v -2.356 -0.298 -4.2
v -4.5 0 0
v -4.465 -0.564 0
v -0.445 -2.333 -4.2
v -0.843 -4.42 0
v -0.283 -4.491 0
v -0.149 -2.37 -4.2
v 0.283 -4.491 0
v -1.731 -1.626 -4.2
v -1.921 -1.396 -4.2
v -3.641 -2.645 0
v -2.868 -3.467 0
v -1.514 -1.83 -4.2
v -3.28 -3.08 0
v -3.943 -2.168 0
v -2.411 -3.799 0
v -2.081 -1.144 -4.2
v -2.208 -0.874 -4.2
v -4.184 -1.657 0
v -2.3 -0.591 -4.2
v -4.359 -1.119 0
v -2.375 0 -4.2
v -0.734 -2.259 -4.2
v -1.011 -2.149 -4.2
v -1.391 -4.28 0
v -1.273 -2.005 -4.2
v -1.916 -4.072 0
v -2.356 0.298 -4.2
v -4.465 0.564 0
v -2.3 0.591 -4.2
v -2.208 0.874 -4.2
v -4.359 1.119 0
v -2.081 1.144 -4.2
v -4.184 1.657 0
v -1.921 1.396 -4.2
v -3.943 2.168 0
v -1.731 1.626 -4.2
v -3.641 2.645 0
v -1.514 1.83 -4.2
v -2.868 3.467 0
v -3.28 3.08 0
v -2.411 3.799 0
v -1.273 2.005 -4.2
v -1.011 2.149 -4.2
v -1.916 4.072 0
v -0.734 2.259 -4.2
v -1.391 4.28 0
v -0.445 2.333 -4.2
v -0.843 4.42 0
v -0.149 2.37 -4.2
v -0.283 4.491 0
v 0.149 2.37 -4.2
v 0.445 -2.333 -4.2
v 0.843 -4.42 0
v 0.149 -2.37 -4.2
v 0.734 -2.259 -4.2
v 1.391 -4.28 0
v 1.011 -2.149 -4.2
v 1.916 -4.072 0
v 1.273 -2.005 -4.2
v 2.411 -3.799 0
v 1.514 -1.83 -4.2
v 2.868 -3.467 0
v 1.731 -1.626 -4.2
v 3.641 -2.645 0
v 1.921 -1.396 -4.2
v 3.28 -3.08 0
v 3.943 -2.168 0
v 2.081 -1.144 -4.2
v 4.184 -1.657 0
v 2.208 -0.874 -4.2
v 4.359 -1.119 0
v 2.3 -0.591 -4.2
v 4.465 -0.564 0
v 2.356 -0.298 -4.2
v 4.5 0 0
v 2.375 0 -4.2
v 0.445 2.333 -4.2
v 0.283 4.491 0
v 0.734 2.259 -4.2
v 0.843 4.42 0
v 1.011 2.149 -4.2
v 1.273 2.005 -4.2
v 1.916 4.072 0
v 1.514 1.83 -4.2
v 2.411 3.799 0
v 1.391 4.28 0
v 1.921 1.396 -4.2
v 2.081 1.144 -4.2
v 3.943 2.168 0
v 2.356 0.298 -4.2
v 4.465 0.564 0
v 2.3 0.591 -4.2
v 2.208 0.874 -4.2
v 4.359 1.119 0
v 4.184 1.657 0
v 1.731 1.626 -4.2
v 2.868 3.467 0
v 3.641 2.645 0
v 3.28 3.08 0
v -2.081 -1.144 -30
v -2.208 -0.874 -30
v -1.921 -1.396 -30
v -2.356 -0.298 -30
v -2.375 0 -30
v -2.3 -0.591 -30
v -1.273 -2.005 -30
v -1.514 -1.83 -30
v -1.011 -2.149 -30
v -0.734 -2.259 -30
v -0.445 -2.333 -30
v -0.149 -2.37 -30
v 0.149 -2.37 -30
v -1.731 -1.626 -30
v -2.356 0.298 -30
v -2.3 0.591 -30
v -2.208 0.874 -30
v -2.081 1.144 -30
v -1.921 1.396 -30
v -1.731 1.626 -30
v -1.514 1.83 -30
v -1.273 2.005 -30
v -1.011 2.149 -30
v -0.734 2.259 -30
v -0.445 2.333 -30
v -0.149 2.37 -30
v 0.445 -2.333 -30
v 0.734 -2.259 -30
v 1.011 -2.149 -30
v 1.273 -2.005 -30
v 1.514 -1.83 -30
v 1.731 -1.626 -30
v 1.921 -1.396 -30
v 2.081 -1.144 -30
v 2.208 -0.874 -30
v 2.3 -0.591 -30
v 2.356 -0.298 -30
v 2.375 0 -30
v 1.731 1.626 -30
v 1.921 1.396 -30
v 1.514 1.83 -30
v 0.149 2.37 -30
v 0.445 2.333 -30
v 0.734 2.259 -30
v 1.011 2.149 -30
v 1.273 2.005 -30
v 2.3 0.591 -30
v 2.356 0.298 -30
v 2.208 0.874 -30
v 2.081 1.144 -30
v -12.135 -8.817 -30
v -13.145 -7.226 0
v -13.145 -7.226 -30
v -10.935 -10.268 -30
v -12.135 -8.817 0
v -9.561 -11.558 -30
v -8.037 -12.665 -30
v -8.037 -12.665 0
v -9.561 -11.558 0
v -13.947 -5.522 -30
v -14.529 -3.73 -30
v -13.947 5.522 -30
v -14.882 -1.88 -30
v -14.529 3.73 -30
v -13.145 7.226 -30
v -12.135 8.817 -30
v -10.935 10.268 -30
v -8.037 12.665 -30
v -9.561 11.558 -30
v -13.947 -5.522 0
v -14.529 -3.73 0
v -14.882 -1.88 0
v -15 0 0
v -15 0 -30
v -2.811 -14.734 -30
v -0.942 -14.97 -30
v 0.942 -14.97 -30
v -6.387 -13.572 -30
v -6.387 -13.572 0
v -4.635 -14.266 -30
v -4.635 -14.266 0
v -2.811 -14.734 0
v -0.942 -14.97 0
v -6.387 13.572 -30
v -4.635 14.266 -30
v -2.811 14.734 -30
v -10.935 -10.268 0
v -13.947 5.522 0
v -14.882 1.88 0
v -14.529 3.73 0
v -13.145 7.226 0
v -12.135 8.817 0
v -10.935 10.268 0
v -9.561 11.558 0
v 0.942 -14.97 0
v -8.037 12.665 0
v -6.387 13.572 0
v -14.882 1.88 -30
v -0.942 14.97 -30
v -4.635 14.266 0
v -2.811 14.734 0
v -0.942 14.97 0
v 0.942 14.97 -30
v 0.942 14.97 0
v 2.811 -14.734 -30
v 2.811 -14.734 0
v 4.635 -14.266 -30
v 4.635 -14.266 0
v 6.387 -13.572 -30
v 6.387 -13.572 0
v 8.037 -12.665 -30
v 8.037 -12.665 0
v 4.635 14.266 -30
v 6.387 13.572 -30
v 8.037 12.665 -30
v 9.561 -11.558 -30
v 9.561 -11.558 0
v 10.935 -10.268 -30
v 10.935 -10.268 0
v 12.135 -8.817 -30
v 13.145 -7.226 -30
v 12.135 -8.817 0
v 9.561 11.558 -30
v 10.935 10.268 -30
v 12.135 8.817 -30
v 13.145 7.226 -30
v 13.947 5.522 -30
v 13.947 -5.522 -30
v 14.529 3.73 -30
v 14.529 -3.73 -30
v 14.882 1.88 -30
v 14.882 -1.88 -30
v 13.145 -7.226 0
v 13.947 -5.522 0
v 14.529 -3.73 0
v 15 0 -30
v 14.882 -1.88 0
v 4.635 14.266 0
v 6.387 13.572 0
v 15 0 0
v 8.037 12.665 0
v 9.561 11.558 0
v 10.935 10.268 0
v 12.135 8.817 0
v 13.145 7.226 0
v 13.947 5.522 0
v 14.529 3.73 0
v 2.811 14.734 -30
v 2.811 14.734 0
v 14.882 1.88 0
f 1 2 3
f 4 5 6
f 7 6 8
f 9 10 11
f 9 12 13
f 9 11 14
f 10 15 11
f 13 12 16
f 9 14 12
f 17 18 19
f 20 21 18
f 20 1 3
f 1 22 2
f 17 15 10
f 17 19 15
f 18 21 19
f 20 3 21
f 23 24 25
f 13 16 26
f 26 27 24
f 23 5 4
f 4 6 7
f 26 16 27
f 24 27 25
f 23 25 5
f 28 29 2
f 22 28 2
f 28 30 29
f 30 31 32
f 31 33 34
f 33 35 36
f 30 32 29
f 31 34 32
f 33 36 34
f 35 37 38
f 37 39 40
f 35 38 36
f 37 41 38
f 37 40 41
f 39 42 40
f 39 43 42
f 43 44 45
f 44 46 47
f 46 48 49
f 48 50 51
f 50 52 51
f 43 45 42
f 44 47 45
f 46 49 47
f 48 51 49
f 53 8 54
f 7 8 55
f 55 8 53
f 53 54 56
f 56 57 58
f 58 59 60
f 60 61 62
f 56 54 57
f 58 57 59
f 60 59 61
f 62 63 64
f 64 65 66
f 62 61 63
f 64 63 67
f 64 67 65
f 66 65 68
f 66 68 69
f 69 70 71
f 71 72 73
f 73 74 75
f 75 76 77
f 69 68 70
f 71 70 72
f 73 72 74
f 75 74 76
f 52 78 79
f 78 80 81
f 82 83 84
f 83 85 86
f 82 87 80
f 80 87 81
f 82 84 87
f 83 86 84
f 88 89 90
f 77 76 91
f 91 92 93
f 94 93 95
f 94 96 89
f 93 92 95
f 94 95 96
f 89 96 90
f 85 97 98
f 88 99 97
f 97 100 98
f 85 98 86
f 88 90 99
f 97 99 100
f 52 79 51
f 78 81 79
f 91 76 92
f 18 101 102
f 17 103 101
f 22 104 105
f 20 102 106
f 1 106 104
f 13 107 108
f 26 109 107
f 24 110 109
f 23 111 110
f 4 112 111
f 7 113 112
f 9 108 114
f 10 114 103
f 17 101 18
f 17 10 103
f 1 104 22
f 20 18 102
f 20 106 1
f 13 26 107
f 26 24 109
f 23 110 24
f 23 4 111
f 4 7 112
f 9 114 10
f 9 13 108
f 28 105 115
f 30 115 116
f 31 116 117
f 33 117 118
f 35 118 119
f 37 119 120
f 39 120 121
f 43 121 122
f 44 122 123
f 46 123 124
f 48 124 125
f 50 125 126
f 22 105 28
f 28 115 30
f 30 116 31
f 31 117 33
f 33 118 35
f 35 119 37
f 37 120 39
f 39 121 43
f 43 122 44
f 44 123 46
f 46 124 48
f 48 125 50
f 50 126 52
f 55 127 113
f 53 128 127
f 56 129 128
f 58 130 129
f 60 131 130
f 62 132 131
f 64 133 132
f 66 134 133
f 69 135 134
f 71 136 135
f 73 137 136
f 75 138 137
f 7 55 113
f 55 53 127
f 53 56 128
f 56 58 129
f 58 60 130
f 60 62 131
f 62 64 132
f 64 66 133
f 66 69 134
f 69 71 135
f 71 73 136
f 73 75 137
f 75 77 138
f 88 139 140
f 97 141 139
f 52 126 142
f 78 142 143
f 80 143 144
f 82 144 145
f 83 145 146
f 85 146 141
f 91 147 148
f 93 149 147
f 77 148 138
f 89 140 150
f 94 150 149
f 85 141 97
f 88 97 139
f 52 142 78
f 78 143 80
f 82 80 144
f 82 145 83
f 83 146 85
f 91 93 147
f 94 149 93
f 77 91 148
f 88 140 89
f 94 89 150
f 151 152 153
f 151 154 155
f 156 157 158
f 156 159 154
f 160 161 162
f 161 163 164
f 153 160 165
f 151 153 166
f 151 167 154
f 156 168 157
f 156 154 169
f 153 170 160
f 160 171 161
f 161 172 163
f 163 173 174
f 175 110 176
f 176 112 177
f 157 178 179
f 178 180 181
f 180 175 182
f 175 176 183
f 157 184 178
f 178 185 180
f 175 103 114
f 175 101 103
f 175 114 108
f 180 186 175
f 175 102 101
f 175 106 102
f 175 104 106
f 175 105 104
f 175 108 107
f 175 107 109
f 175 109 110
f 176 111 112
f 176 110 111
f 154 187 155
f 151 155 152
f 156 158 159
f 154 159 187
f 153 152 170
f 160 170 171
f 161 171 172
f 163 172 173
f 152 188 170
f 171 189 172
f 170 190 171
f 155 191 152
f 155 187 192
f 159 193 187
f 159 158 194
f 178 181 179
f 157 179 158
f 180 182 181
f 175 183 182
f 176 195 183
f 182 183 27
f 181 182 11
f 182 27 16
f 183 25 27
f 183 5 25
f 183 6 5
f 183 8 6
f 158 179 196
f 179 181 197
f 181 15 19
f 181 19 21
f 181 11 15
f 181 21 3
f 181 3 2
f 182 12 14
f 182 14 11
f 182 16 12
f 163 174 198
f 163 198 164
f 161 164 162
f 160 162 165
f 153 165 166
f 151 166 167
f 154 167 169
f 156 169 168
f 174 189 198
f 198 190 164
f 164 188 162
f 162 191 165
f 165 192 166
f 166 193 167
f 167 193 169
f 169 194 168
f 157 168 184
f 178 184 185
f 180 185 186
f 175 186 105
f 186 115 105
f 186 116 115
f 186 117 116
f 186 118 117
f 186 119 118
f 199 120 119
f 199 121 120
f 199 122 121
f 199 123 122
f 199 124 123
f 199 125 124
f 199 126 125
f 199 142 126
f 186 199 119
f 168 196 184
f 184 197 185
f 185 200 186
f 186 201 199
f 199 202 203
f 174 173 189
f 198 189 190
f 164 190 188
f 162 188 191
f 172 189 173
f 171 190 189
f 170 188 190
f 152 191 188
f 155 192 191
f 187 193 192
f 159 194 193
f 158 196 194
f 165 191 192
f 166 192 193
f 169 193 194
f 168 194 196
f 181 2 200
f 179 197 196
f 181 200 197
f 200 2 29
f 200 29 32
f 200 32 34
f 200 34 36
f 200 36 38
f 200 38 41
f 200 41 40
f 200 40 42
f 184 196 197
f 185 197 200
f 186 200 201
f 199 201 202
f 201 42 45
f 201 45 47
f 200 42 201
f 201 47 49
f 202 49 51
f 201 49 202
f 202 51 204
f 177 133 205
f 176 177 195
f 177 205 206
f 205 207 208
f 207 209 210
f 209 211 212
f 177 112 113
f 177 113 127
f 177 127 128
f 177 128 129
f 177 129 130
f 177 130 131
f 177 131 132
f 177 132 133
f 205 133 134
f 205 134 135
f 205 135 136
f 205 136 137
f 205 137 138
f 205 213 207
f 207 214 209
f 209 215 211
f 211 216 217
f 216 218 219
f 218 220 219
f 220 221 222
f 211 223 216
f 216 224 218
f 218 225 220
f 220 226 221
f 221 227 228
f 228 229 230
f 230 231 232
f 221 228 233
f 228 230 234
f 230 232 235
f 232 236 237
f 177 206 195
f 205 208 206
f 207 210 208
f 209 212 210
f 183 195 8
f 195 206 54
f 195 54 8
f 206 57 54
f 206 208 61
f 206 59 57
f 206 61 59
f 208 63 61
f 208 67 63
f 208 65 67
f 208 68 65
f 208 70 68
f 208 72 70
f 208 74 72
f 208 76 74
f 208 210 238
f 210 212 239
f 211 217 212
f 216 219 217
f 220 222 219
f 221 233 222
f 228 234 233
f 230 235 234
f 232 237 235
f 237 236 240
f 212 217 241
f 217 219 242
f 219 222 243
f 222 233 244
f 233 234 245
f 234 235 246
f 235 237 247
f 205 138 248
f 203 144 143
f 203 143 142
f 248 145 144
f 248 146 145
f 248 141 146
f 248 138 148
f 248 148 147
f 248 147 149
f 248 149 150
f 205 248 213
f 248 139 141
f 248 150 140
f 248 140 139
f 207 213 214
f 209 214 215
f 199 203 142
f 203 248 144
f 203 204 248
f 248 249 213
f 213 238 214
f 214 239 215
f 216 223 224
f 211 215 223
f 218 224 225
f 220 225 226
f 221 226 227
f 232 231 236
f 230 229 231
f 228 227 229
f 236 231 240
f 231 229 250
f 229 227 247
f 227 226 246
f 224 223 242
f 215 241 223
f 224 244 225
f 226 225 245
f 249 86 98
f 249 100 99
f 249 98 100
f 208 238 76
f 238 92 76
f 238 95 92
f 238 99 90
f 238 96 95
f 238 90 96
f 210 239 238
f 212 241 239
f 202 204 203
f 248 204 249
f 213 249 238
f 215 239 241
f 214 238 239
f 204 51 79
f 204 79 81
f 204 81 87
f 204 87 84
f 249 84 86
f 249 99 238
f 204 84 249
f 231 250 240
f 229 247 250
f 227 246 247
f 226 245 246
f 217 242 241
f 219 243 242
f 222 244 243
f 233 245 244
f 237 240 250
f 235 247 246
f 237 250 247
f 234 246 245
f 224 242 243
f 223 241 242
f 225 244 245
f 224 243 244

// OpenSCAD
$fn = 50;

difference() {
	union() {
		translate(v = [0, 0, -30.0]) {
			cylinder(h = 30, r = 15.0);
		}
	}
	union() {
		translate(v = [0, 0, 0]) {
			rotate(a = [0, 0, 0]) {
				difference() {
					union() {
						translate(v = [0, 0, -33.0]) {
							cylinder(h = 33, r = 2.25);
						}
						translate(v = [0, 0, -4.2]) {
							cylinder(h = 4.2, r1 = 2.375, r2 = 4.5);
						}
						translate(v = [0, 0, -33.0]) {
							cylinder(h = 33, r = 2.375);
						}
						translate(v = [0, 0, -33.0]) {
							cylinder(h = 33, r = 2.25);
						}
					}
					union();
				}
			}
		}
	}
}
